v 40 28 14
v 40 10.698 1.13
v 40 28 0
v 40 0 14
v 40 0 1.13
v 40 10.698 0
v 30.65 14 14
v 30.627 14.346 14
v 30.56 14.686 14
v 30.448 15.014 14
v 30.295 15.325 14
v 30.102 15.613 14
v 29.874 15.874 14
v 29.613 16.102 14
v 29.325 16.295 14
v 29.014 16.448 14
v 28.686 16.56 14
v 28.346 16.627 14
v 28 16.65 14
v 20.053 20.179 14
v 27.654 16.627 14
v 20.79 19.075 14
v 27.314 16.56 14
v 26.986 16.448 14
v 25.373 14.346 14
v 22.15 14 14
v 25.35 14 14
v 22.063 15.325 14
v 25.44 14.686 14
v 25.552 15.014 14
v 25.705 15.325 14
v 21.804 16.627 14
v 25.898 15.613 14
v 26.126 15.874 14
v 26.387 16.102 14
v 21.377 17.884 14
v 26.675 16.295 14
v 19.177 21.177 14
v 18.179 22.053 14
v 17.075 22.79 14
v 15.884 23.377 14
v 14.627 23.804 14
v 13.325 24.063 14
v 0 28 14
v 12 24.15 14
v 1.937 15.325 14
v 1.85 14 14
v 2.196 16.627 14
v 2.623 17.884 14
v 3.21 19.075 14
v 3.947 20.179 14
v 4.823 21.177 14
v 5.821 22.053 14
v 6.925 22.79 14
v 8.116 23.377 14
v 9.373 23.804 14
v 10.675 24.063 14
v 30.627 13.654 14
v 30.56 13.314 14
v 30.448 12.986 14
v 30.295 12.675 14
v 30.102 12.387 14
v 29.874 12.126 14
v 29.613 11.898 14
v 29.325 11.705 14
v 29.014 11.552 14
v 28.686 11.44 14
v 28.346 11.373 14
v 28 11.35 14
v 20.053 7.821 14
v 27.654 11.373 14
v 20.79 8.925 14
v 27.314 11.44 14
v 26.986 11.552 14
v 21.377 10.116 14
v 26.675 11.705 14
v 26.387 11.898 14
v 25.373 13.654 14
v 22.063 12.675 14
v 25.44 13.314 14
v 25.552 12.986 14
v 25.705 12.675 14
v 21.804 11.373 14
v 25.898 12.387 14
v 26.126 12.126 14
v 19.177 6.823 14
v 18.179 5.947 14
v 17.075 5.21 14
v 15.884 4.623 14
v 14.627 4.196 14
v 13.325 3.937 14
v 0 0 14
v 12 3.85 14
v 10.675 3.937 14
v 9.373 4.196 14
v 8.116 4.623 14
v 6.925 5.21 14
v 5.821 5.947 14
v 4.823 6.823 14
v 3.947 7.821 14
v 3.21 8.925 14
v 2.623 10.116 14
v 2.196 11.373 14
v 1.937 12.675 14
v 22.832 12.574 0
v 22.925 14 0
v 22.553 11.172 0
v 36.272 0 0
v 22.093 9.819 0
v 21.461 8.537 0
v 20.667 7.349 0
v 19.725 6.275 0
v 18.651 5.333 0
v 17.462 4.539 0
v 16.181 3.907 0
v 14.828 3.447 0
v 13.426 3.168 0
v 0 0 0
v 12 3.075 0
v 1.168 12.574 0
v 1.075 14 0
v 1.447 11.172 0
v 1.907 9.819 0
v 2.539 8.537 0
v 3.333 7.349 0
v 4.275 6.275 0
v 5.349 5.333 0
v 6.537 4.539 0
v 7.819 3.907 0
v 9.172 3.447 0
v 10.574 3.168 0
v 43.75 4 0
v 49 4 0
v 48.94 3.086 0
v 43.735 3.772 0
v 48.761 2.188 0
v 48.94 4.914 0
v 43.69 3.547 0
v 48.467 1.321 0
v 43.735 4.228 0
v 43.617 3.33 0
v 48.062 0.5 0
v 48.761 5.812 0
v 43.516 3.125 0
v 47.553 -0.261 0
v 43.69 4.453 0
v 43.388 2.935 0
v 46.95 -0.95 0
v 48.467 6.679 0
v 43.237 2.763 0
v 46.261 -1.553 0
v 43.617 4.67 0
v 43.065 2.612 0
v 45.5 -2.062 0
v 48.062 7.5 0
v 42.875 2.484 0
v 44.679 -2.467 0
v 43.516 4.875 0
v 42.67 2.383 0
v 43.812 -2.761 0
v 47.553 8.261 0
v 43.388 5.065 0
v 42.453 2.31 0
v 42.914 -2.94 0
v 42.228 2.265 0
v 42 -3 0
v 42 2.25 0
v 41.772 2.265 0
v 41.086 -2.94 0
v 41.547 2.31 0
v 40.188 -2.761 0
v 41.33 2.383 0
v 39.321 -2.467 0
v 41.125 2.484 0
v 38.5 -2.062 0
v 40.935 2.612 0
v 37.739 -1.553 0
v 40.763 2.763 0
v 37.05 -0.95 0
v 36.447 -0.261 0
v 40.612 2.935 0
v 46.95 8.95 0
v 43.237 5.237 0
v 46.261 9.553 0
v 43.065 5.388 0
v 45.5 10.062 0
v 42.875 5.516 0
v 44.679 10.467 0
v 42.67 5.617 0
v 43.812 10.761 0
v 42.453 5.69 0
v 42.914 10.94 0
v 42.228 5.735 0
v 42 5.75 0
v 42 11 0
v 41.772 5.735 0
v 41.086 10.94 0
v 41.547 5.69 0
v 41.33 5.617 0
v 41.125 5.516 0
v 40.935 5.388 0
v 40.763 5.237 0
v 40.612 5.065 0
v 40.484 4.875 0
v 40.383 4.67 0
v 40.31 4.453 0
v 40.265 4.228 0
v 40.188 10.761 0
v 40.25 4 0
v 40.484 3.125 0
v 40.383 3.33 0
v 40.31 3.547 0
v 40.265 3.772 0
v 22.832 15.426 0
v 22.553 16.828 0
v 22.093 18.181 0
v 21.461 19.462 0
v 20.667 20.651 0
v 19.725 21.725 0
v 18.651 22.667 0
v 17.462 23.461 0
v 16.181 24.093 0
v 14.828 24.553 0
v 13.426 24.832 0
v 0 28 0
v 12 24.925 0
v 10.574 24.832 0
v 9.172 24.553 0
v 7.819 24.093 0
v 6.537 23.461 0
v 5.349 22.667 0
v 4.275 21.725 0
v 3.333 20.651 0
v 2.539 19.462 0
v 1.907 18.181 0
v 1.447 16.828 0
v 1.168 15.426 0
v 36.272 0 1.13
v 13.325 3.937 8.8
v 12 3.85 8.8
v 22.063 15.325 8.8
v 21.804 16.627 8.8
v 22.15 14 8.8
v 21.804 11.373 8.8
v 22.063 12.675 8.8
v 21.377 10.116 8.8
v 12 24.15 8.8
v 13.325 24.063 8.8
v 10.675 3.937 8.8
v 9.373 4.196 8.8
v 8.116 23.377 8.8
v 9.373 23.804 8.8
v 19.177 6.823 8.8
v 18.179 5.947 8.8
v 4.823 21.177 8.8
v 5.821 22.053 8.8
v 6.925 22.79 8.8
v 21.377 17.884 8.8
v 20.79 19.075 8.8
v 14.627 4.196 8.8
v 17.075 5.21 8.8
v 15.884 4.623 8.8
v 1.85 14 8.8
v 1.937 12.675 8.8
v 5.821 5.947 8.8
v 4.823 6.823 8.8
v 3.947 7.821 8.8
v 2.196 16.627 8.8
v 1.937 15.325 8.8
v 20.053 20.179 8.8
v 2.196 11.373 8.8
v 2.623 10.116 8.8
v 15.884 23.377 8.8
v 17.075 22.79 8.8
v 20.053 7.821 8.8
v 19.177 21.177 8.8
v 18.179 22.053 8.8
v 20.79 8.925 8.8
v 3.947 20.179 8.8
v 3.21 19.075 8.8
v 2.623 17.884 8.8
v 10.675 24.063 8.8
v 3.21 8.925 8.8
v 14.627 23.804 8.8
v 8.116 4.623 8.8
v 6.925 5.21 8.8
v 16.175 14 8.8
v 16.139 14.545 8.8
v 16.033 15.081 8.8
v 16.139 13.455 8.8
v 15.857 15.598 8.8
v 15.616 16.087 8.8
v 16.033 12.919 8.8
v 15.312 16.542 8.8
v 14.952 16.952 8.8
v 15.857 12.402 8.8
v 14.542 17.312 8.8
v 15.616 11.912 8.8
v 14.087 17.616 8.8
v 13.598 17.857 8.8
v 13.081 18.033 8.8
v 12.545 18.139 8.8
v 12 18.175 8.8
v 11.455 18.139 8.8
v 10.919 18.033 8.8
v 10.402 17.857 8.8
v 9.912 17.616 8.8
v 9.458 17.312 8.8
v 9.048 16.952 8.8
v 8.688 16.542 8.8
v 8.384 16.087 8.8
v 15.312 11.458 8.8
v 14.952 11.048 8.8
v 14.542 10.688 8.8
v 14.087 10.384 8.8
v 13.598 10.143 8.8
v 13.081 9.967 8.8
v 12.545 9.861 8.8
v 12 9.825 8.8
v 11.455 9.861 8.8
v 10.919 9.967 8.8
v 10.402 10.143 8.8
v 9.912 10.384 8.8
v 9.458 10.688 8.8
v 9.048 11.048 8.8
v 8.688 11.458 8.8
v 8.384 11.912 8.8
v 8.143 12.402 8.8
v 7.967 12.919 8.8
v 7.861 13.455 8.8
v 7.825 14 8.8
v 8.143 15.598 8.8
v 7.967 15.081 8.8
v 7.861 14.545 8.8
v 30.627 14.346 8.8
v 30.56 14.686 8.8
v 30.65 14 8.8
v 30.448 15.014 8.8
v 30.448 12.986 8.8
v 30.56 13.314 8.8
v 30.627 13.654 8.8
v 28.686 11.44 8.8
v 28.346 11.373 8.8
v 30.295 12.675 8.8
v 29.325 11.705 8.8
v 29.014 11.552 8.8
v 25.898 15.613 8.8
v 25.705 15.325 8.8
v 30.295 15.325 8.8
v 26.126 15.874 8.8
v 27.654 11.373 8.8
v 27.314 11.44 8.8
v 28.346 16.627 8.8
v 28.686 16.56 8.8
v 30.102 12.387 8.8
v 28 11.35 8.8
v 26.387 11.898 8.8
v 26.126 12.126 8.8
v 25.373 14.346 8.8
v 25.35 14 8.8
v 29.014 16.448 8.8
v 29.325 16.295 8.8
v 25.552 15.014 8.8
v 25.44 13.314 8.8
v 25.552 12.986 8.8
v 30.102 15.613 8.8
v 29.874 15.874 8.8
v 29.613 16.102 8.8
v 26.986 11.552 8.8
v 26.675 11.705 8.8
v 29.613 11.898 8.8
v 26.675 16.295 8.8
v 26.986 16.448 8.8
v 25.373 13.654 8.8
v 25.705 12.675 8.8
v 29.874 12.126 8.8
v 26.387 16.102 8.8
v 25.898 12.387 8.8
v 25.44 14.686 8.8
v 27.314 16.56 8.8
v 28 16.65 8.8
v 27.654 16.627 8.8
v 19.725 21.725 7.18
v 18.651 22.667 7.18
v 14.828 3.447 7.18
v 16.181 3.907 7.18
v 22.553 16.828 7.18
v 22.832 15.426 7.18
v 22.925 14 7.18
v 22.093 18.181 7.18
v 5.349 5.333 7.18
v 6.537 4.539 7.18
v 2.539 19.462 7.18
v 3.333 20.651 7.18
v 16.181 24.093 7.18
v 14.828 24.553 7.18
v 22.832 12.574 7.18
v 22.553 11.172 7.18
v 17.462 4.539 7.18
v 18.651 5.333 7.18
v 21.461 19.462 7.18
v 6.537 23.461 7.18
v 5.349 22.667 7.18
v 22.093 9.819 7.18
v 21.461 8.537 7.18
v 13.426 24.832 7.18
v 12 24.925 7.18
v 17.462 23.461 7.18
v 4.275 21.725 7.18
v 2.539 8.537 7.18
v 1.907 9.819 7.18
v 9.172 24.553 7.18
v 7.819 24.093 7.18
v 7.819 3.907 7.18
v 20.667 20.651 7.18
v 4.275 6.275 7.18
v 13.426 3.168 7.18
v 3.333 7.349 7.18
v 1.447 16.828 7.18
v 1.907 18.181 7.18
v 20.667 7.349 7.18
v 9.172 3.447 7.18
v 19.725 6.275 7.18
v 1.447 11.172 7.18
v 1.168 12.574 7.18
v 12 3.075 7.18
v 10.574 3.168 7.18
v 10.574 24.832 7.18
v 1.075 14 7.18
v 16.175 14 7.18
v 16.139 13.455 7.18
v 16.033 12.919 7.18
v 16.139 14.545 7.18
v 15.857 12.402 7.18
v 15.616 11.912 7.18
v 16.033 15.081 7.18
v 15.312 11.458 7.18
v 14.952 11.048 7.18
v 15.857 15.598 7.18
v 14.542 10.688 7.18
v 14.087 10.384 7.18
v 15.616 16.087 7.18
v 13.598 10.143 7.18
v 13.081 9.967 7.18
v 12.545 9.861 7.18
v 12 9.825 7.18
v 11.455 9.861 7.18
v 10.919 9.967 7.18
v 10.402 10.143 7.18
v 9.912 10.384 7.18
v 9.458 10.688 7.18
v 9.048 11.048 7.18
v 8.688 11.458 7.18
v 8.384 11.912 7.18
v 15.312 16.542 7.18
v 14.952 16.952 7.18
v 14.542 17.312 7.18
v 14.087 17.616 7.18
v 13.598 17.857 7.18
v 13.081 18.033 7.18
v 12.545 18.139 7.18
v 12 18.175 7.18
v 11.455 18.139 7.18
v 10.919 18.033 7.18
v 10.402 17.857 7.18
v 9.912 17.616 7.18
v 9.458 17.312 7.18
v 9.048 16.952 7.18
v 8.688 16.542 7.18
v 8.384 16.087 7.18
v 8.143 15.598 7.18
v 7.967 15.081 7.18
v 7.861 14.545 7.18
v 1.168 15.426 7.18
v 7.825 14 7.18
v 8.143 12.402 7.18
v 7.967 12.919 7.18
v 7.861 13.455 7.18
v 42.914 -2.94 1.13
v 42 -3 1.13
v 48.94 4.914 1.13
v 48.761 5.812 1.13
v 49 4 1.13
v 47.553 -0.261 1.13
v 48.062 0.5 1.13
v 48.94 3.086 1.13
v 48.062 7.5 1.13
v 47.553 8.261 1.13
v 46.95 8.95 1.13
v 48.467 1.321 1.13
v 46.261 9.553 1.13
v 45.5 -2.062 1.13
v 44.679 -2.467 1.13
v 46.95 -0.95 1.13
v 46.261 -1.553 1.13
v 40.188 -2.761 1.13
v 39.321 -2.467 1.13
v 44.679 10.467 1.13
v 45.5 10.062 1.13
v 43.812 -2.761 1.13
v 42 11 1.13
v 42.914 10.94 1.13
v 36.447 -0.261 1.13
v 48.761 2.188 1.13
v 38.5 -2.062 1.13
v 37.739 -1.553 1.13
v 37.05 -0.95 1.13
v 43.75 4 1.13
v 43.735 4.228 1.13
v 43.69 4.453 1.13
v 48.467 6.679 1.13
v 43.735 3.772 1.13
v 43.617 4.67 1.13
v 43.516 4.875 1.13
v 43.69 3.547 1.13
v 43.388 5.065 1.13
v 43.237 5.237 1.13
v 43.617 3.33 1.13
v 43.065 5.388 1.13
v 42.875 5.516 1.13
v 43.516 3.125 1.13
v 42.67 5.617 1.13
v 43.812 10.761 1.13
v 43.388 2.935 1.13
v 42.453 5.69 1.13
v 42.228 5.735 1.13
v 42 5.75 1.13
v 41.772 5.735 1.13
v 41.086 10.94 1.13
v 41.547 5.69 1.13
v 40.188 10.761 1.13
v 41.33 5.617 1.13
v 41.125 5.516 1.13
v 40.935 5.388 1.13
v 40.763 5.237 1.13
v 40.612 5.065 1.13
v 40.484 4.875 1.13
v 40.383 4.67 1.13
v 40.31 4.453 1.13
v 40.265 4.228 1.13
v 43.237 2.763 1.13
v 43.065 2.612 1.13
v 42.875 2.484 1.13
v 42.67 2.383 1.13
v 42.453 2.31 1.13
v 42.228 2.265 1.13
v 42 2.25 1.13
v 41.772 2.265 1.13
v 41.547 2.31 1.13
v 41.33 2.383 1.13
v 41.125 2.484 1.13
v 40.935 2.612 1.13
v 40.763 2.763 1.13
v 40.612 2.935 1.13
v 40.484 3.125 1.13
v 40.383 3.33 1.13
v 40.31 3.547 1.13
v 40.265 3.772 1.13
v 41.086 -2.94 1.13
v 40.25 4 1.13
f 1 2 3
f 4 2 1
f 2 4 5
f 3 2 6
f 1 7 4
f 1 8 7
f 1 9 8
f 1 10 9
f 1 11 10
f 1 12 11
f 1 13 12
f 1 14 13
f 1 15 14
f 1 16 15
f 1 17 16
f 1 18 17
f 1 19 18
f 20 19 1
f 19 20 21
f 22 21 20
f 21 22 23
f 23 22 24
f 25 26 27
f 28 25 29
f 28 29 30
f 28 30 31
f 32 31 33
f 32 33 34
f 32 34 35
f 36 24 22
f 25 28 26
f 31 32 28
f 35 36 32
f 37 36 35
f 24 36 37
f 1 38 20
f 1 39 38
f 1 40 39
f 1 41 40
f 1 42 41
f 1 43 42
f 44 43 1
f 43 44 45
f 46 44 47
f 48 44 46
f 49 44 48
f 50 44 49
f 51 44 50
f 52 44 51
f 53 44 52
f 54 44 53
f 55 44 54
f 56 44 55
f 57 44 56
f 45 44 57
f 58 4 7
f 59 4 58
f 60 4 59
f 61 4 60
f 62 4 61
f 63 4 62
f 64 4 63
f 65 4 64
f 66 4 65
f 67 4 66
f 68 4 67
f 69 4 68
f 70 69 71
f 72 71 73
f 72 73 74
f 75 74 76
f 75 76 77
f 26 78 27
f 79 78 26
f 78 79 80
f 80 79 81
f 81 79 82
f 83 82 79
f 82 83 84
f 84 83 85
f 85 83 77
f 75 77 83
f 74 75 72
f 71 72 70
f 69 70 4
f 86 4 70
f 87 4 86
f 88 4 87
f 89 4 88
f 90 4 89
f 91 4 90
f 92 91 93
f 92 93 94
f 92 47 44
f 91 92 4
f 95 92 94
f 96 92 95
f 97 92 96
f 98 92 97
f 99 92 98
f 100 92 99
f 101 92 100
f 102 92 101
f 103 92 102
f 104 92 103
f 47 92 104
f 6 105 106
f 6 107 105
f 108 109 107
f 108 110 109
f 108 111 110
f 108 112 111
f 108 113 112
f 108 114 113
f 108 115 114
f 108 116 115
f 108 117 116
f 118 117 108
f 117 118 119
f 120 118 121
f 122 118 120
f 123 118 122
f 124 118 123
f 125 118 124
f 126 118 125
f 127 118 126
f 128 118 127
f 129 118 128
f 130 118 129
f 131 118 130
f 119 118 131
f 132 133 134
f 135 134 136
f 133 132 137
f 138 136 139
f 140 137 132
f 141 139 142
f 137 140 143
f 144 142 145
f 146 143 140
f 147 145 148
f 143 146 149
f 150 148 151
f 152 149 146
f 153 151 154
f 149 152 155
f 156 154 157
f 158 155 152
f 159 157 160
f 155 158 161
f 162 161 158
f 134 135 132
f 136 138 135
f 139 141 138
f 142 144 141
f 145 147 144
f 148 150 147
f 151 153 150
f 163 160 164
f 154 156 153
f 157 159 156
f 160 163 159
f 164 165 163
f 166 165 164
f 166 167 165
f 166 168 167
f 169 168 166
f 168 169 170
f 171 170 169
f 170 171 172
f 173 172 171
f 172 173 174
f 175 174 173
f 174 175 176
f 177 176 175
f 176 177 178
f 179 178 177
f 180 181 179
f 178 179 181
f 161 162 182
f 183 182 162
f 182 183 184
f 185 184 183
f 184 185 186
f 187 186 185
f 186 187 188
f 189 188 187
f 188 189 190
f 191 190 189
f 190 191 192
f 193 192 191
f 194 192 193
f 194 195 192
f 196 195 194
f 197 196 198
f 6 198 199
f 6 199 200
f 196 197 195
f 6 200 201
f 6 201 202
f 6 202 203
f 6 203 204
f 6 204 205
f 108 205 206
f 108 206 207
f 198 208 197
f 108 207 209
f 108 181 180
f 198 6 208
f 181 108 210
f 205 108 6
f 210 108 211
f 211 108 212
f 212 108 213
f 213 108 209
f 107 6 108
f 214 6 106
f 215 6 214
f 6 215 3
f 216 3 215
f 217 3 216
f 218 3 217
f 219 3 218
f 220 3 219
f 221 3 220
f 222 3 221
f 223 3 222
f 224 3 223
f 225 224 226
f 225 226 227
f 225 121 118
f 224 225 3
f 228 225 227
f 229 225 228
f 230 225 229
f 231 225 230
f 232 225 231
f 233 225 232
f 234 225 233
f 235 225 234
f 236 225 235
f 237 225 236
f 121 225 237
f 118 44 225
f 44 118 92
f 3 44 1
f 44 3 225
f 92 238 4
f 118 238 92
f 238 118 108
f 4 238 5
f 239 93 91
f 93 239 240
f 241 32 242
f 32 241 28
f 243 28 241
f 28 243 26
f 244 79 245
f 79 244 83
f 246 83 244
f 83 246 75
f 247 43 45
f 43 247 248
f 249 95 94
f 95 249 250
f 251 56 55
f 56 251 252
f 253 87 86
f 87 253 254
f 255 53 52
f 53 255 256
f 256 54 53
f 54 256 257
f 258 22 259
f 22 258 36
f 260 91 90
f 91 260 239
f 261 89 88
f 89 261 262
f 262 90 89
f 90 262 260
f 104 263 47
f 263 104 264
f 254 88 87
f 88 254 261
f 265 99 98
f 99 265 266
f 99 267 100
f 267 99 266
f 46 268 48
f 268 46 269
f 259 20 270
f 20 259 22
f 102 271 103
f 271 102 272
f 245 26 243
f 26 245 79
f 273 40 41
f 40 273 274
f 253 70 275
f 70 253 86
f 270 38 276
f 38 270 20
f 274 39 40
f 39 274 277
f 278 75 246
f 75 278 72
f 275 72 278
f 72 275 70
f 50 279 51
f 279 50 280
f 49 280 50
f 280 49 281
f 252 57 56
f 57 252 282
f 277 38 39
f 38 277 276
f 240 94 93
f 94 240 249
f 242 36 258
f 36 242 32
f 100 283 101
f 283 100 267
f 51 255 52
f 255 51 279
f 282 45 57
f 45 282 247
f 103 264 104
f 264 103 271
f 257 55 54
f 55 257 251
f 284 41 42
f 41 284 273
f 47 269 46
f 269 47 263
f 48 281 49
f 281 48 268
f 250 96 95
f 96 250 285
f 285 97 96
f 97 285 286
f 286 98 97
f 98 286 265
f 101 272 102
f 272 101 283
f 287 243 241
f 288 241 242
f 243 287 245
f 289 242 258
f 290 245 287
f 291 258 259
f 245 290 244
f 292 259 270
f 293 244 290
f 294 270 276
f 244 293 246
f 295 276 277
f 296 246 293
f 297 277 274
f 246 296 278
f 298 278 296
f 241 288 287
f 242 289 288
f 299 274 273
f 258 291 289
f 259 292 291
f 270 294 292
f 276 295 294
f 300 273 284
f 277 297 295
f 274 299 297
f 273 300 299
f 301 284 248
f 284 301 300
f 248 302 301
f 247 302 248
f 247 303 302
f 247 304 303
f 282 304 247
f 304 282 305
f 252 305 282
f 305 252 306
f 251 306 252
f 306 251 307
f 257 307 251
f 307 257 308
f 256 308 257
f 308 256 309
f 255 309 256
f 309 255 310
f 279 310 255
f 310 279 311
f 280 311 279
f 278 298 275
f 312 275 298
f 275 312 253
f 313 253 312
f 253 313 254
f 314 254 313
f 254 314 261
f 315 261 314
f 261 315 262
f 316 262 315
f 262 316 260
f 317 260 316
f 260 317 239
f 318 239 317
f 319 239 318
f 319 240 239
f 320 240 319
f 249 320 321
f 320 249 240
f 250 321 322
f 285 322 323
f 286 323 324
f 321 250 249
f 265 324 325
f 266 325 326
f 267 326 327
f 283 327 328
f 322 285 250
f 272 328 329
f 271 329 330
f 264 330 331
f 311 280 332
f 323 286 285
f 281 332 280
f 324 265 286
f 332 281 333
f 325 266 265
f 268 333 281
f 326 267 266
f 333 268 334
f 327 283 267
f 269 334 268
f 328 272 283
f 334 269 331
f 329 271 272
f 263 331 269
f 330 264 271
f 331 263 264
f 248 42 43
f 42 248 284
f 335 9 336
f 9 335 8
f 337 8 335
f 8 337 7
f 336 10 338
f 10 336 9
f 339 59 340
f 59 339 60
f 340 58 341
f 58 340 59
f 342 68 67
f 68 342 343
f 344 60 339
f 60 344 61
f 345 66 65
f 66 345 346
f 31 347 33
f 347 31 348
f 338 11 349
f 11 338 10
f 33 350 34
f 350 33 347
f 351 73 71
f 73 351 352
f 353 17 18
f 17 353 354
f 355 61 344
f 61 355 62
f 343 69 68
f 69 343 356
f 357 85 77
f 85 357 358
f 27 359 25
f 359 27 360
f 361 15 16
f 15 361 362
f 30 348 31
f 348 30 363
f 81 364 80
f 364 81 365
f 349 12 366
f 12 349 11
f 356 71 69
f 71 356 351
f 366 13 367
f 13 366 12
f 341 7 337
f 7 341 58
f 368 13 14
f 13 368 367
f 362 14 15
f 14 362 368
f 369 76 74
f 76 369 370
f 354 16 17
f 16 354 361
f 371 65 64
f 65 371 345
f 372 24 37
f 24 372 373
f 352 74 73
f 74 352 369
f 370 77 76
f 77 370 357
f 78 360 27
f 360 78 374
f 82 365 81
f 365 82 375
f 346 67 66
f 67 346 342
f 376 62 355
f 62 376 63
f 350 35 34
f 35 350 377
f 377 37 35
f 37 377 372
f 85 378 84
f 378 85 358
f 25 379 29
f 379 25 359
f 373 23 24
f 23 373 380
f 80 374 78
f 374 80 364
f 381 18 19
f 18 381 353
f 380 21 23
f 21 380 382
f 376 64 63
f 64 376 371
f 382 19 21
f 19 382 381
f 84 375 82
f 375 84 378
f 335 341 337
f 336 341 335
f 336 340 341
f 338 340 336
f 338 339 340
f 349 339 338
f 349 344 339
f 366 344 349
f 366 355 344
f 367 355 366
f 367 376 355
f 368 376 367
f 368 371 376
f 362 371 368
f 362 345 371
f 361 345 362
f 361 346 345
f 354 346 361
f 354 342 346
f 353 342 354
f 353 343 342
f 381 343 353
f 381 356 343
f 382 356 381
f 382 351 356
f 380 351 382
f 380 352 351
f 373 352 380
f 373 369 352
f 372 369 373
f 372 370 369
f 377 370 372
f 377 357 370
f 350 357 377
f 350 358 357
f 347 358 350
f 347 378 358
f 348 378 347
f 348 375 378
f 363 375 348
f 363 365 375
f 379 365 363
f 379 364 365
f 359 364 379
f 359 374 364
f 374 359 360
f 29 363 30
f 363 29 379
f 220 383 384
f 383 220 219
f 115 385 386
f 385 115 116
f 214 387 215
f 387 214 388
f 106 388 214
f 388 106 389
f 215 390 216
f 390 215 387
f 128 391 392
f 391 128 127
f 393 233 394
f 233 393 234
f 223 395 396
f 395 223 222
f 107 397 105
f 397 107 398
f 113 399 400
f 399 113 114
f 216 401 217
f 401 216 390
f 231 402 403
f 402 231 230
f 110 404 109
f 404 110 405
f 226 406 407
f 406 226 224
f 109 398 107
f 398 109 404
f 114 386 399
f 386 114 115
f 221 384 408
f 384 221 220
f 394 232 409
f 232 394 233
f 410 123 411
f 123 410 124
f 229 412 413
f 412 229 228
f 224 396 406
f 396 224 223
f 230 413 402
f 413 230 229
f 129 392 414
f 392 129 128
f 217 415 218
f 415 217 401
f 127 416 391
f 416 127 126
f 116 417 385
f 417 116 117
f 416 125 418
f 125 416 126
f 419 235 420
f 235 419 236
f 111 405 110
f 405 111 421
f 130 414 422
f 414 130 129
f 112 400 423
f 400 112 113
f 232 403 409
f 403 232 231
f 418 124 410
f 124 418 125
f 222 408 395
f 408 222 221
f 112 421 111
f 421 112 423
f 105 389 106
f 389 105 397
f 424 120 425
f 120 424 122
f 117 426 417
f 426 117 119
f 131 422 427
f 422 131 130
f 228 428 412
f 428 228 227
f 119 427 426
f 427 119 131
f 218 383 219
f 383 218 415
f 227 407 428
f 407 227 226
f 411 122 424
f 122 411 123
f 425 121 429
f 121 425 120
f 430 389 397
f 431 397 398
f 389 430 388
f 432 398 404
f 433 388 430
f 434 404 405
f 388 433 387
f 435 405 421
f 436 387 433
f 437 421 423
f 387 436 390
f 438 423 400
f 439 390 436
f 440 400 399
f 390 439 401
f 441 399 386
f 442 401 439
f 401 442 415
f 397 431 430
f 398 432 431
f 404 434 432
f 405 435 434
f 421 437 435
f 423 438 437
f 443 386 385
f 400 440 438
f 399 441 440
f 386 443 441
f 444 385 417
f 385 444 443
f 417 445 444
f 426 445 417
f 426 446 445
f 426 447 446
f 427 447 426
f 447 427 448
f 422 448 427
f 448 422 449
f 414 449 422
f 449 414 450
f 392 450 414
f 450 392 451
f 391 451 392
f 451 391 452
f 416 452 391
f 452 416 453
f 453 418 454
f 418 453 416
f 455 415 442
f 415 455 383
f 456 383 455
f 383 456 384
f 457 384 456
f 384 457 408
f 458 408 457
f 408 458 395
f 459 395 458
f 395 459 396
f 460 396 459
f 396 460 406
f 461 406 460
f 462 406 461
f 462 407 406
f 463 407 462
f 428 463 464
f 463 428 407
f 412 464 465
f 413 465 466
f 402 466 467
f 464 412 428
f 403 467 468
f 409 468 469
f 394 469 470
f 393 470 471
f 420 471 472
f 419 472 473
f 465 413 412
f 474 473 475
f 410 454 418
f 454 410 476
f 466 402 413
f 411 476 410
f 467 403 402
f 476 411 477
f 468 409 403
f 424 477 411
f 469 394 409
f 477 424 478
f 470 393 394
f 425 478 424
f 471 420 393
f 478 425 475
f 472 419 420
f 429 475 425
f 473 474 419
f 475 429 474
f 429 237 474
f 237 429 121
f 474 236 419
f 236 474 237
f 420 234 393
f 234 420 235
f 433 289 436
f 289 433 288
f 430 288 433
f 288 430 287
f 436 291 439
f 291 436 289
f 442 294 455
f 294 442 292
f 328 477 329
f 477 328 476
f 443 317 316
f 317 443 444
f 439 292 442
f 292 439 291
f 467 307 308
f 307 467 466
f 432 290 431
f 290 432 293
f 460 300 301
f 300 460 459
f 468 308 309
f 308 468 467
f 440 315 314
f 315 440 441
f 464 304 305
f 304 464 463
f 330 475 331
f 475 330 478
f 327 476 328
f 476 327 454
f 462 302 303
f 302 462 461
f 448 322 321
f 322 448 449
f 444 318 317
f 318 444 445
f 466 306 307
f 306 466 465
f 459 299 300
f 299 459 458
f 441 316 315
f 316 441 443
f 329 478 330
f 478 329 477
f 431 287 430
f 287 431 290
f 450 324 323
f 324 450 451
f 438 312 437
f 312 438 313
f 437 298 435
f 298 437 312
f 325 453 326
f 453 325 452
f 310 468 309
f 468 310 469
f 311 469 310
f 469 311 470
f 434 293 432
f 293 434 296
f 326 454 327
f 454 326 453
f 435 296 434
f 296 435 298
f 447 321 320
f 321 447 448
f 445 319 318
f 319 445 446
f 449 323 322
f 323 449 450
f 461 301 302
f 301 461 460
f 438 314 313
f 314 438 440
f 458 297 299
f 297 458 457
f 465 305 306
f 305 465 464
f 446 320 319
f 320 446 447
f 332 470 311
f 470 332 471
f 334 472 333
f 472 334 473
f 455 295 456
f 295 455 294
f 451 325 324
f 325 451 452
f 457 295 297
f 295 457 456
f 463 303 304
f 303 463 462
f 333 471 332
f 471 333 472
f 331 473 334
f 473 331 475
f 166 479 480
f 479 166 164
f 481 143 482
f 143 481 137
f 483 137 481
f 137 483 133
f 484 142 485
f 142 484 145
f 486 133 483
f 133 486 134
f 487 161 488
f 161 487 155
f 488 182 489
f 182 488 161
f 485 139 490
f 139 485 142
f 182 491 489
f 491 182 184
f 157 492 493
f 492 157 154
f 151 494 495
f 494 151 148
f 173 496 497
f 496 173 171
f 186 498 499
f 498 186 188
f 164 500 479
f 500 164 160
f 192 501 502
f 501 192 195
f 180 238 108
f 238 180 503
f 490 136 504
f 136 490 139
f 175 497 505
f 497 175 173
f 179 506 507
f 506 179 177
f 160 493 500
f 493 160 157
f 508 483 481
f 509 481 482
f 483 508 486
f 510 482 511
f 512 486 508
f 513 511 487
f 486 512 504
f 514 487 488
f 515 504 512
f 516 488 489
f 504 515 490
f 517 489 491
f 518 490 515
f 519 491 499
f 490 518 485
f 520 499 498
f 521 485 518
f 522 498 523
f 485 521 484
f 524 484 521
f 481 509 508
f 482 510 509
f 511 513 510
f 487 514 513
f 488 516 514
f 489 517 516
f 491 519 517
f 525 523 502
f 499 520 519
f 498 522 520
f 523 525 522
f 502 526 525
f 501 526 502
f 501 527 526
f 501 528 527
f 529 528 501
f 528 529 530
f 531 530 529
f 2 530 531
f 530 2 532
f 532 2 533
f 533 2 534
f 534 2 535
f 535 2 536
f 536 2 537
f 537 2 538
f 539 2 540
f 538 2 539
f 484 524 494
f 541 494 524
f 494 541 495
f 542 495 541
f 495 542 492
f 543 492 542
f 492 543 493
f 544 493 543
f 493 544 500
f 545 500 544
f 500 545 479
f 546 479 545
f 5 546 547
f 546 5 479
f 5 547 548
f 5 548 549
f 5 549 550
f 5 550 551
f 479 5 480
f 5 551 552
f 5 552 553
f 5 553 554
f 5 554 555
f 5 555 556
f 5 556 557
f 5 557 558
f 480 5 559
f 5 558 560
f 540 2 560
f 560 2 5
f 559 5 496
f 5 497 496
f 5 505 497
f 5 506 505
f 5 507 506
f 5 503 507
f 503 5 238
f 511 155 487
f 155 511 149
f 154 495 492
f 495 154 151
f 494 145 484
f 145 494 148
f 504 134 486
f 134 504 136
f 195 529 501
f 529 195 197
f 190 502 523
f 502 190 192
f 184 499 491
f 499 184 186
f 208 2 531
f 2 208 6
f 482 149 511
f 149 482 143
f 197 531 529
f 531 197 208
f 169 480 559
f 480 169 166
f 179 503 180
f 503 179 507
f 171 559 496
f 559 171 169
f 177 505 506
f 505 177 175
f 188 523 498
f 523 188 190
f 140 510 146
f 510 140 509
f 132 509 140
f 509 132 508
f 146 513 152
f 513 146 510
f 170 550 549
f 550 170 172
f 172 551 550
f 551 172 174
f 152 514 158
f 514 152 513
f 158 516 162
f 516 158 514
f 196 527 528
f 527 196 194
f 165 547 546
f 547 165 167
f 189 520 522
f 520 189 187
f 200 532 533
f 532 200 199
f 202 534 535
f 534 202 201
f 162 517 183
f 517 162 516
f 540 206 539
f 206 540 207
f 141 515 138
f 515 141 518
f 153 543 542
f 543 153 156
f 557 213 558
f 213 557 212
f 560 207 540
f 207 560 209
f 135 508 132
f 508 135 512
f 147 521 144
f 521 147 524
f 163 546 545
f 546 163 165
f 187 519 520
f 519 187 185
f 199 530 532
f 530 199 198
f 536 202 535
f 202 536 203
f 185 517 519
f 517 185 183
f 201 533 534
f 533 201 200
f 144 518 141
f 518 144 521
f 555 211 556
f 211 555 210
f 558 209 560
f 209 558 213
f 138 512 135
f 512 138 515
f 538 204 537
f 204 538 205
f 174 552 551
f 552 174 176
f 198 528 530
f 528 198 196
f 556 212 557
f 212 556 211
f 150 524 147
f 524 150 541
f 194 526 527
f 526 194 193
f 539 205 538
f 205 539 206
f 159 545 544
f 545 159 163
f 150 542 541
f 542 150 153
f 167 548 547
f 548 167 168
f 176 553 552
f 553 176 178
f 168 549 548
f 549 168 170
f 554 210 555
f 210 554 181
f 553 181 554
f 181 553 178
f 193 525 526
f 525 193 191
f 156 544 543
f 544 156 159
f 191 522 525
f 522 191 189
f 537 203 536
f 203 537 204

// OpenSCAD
// file: parameters.scad
// =============================================================================
// Gen-AP Vernier flux-claw mega - WOUND-AWARE (HARD GATE)
// Dual-rotor vernier: Rotor B +22.5 deg vs 12-slot stator; O5 flux claws
// =============================================================================

wire_awg            = 26;
wire_od             = 0.45;
turns               = 195;      // +10 vs Gen-AM 185
fill                = 0.70;
layers_per_face     = 2;
wind_build_axial    = layers_per_face * wire_od * fill;   // 0.63 mm
wind_build_radial   = 3 * wire_od * fill;                 // 0.945 mm

coil_id_r           = 16.0;
coil_od_r           = 63.0;
span_deg            = 25.0;
former_web          = 1.30;     // thinner vs AM 1.40
flange_t            = 0.60;
wall                = 1.2;
slot_w              = 2.4;
mount_hole          = 3.5;
tab_len             = 7.0;

former_bare_h       = former_web + 2 * flange_t;            // 2.50 mm
coil_envelope_h     = former_bare_h + 2 * wind_build_axial; // 3.76 mm

run_clear           = 0.50;
gap_spacer_h        = run_clear + wind_build_axial;         // 1.13 mm
m2m                 = coil_envelope_h + 2 * run_clear;      // 4.76 mm

coil_stations       = 12;
bay_r_in            = coil_id_r - 2.0 - wind_build_radial;
bay_r_out           = coil_od_r + 2.0 + wind_build_radial;
bay_span            = span_deg + 4.0;
bay_offset          = 2.0;
stator_thick        = former_bare_h;
stator_od           = 160.0;
shaft_clear_stator  = 34.0;
coil_mount_r        = 26.0;

large_pocket_d      = 20.3;
small_pocket_d      = 5.3;
pocket_h            = 5.2;
large_n             = 8;
R_large             = 39.5;     // closer to copper centroid vs AM R=40.5
R_small_inner       = 25.5;
R_small_mid         = 39.5;
R_small_outer       = 55.5;
carrier_od          = 156.0;
carrier_thick       = 7.5;
hub_h               = 10.0;
hub_od              = 30.0;
rotor_b_offset_deg  = 22.5;     // vernier offset vs 12-slot stator

shaft_bore          = 8.35;
bearing_d           = 21.85;
bearing_h           = 7.2;
m3_clear            = 3.5;
bolt_r_inner        = 36.0;
bolt_n_inner        = 6;
flange_bolt_r       = 72.0;
flange_bolt_n       = 6;
brace_r             = 68.0;
brace_d             = 4.3;
brace_n             = 4;

spacer_pad_od       = 14.0;
spacer_pad_id       = m3_clear;
endbell_od          = 160.0;
endbell_thick       = 8.0;
endbell_shaft_clear = 10.0;

$fn = 64;
// main file
// Gen-AP fit coupon — magnet pockets + 608 + spacer height
include <parameters.scad>;
$fn = 48;
block_w = 40; block_d = 28; block_h = 14;
difference() {
    cube([block_w, block_d, block_h]);
    translate([12, block_d/2, block_h - pocket_h])
        cylinder(d=large_pocket_d, h=pocket_h + 0.2);
    translate([28, block_d/2, block_h - pocket_h])
        cylinder(d=small_pocket_d, h=pocket_h + 0.2);
    translate([12, block_d/2, -0.02])
        cylinder(d=bearing_d, h=bearing_h);
    translate([12, block_d/2, -0.1])
        cylinder(d=shaft_bore, h=block_h + 1);
}
translate([block_w + 2, 4, 0])
    difference() {
        cylinder(d=spacer_pad_od, h=gap_spacer_h);
        translate([0, 0, -0.1]) cylinder(d=spacer_pad_id, h=gap_spacer_h + 0.2);
    }
